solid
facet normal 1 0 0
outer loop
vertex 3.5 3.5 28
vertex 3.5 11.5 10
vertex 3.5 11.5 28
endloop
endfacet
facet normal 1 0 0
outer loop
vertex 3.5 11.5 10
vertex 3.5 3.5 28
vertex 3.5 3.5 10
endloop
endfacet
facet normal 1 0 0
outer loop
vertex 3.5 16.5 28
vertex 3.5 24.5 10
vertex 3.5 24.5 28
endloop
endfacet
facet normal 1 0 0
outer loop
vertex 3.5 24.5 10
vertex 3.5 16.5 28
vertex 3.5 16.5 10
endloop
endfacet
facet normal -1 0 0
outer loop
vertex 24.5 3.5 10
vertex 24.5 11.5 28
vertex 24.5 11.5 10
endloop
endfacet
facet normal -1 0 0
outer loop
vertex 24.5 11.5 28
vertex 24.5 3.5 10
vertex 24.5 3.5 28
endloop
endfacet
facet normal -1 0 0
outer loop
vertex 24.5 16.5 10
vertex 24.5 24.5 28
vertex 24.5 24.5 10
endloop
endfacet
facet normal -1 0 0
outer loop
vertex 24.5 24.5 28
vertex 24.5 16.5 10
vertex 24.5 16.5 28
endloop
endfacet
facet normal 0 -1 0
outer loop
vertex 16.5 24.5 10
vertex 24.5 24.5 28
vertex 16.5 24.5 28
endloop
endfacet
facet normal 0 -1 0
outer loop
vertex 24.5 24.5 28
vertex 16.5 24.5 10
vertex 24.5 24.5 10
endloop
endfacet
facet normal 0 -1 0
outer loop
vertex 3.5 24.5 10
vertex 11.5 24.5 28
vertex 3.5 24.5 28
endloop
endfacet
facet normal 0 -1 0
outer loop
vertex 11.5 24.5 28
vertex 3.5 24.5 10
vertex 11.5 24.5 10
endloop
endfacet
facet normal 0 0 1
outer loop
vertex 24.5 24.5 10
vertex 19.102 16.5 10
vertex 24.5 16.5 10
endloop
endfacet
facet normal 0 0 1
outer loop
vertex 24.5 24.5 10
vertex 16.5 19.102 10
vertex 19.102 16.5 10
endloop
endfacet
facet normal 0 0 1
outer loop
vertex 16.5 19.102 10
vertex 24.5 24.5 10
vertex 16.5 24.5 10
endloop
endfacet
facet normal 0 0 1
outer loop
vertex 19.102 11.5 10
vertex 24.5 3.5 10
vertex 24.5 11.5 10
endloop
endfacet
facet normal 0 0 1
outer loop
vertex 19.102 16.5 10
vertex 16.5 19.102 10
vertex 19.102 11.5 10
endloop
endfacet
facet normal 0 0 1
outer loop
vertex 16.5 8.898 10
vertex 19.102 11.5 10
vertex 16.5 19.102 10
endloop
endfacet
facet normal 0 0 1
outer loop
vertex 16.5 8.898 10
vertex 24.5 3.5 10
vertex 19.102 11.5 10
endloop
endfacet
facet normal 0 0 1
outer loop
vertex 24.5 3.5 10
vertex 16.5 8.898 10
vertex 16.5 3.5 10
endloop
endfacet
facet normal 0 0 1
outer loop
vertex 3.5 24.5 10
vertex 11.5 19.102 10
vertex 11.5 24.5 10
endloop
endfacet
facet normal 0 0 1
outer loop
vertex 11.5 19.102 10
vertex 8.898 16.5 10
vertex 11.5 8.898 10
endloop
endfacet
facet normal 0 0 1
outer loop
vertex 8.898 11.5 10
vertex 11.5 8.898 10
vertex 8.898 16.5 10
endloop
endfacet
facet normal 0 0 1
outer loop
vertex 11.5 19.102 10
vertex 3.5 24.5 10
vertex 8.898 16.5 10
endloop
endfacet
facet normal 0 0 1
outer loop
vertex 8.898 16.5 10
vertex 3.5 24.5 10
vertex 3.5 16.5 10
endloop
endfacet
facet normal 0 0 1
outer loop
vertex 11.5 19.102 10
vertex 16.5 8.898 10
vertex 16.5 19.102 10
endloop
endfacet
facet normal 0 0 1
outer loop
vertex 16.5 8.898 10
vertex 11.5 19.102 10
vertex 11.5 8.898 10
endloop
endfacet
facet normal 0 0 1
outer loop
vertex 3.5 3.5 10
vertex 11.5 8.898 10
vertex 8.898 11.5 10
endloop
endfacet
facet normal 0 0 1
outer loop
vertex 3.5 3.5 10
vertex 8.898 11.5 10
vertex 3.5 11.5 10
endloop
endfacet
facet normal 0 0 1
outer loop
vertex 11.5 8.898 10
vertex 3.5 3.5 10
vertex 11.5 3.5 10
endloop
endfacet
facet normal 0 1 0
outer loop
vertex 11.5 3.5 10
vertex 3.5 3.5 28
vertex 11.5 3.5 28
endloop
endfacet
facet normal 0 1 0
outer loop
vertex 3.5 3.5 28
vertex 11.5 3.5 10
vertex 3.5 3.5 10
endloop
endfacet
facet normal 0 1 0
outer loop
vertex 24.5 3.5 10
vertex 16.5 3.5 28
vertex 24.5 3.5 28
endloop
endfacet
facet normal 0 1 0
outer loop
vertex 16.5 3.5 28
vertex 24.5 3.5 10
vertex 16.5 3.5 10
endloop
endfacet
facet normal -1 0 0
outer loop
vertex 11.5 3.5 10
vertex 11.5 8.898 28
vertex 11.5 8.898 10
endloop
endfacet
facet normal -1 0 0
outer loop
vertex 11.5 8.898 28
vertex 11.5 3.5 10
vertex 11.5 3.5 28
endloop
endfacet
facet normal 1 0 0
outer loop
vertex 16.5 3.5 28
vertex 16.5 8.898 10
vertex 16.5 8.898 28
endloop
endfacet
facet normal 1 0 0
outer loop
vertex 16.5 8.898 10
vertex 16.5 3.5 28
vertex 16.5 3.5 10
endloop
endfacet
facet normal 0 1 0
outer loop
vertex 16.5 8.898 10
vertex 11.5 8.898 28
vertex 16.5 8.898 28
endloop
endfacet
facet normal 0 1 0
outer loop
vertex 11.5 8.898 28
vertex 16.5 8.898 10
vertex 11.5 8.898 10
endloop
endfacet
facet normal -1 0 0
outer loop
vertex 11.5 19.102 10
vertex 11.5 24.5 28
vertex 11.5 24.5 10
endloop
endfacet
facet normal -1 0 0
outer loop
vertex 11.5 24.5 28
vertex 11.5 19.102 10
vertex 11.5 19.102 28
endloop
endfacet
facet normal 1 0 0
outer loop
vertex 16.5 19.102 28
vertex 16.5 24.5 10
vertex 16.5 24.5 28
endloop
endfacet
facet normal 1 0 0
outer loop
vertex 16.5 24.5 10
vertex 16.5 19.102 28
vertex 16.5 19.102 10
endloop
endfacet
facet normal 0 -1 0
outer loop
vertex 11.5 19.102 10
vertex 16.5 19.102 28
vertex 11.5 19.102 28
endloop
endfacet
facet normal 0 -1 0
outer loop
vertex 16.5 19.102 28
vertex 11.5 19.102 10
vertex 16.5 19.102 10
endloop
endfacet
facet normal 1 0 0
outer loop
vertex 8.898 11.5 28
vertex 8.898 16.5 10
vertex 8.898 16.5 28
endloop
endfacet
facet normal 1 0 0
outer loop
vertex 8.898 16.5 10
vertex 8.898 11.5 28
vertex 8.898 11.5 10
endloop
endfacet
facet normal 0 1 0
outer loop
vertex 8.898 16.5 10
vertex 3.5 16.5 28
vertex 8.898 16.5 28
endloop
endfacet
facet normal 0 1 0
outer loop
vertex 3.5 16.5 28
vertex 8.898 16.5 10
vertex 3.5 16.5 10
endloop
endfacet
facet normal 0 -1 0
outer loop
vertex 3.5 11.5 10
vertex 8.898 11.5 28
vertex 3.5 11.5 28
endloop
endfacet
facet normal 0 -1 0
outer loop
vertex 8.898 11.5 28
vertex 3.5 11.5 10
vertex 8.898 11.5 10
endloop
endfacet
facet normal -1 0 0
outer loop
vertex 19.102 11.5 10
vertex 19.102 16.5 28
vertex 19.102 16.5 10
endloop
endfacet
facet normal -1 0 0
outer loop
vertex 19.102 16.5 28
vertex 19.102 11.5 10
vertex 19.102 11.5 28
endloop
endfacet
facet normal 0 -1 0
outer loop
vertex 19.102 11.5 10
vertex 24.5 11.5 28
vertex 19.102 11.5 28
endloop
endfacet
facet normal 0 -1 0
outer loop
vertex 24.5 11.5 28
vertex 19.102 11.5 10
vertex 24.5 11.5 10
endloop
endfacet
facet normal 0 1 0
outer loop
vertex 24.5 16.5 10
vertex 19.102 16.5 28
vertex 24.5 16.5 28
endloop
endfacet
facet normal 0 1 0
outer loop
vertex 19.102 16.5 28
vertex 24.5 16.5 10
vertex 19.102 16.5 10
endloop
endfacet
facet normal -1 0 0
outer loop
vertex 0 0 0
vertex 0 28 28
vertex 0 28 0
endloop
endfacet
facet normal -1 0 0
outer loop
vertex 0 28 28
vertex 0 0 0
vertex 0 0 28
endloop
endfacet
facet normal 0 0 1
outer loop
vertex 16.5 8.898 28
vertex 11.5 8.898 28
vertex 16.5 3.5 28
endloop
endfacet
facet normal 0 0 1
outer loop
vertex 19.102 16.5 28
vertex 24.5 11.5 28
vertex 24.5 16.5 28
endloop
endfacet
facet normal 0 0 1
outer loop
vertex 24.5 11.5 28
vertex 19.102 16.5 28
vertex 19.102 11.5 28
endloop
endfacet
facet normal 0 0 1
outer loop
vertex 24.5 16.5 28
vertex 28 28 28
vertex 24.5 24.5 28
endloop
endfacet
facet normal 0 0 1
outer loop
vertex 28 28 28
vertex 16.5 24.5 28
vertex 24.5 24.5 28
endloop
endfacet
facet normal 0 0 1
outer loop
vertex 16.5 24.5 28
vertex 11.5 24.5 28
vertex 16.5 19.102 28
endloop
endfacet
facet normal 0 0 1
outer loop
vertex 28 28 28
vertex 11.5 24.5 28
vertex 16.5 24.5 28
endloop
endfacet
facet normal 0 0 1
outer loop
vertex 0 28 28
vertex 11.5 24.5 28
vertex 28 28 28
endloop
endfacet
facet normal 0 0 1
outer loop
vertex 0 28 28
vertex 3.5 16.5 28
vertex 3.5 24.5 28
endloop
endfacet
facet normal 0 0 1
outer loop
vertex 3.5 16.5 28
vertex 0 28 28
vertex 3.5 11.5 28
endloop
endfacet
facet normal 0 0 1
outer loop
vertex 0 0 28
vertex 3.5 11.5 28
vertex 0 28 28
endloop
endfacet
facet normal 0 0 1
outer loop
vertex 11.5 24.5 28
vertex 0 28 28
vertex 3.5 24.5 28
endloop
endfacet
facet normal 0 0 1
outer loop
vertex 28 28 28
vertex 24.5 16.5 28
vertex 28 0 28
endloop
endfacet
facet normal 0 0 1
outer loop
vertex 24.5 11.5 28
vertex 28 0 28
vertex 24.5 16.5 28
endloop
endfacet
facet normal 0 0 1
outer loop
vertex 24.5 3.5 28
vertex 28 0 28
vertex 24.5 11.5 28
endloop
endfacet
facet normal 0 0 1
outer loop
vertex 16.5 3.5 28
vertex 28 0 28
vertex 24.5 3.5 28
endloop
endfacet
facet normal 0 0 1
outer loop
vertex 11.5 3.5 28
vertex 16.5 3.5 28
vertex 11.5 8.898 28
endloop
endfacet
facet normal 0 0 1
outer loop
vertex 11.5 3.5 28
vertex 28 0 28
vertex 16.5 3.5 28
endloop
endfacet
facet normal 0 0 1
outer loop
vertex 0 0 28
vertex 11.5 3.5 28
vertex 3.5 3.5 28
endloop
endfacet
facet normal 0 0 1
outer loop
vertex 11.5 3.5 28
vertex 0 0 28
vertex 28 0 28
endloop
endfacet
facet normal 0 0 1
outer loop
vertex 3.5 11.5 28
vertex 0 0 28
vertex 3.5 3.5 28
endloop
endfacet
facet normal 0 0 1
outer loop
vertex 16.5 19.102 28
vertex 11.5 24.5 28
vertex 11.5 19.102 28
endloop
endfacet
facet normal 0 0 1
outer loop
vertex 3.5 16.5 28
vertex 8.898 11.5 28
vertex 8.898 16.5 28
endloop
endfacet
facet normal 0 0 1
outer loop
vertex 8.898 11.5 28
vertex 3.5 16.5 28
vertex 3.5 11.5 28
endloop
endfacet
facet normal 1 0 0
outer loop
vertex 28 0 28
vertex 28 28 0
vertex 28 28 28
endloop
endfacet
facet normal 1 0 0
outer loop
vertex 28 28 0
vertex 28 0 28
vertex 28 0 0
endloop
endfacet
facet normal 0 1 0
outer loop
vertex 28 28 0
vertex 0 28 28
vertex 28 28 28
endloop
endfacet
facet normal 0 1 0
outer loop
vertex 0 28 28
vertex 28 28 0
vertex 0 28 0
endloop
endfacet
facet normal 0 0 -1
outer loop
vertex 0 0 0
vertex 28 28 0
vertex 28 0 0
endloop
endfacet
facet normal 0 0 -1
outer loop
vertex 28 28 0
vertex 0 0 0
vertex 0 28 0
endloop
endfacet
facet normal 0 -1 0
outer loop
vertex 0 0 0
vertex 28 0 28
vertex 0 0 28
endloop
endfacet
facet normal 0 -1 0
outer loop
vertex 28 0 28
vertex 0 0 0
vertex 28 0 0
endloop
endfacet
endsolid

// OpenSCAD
/**
 * AluEndCap.scad
 * 
 * Created by Diego Viejo
 * 01/Feb/2016
 * 
 */

height = 10;

side = 20;
wall = 4;
typeWidth = 5;
typeDepth = 6.35;

difference()
{
    cube(side+wall*2);
    
    translate([wall-1/2, wall-1/2, height])
    difference()
    {
        cube([side+1, side+1, side+2*wall]);
        
        translate([(side+1-typeWidth)/2, -1, -1])
            cube([typeWidth, 1 + typeDepth*0.85, side+2*wall+2]);
        translate([(side+1-typeWidth)/2, side+1-typeDepth*0.85, -1])
            cube([typeWidth, 1 + typeDepth, side+2*wall+2]);
        translate([-1, (side+1-typeWidth)/2, -1])
            cube([1 + typeDepth*0.85, typeWidth, side+2*wall+2]);
        translate([side+1-typeDepth*0.85, (side+1-typeWidth)/2, -1])
            cube([1 + typeDepth, typeWidth, side+2*wall+2]);
    }
}
